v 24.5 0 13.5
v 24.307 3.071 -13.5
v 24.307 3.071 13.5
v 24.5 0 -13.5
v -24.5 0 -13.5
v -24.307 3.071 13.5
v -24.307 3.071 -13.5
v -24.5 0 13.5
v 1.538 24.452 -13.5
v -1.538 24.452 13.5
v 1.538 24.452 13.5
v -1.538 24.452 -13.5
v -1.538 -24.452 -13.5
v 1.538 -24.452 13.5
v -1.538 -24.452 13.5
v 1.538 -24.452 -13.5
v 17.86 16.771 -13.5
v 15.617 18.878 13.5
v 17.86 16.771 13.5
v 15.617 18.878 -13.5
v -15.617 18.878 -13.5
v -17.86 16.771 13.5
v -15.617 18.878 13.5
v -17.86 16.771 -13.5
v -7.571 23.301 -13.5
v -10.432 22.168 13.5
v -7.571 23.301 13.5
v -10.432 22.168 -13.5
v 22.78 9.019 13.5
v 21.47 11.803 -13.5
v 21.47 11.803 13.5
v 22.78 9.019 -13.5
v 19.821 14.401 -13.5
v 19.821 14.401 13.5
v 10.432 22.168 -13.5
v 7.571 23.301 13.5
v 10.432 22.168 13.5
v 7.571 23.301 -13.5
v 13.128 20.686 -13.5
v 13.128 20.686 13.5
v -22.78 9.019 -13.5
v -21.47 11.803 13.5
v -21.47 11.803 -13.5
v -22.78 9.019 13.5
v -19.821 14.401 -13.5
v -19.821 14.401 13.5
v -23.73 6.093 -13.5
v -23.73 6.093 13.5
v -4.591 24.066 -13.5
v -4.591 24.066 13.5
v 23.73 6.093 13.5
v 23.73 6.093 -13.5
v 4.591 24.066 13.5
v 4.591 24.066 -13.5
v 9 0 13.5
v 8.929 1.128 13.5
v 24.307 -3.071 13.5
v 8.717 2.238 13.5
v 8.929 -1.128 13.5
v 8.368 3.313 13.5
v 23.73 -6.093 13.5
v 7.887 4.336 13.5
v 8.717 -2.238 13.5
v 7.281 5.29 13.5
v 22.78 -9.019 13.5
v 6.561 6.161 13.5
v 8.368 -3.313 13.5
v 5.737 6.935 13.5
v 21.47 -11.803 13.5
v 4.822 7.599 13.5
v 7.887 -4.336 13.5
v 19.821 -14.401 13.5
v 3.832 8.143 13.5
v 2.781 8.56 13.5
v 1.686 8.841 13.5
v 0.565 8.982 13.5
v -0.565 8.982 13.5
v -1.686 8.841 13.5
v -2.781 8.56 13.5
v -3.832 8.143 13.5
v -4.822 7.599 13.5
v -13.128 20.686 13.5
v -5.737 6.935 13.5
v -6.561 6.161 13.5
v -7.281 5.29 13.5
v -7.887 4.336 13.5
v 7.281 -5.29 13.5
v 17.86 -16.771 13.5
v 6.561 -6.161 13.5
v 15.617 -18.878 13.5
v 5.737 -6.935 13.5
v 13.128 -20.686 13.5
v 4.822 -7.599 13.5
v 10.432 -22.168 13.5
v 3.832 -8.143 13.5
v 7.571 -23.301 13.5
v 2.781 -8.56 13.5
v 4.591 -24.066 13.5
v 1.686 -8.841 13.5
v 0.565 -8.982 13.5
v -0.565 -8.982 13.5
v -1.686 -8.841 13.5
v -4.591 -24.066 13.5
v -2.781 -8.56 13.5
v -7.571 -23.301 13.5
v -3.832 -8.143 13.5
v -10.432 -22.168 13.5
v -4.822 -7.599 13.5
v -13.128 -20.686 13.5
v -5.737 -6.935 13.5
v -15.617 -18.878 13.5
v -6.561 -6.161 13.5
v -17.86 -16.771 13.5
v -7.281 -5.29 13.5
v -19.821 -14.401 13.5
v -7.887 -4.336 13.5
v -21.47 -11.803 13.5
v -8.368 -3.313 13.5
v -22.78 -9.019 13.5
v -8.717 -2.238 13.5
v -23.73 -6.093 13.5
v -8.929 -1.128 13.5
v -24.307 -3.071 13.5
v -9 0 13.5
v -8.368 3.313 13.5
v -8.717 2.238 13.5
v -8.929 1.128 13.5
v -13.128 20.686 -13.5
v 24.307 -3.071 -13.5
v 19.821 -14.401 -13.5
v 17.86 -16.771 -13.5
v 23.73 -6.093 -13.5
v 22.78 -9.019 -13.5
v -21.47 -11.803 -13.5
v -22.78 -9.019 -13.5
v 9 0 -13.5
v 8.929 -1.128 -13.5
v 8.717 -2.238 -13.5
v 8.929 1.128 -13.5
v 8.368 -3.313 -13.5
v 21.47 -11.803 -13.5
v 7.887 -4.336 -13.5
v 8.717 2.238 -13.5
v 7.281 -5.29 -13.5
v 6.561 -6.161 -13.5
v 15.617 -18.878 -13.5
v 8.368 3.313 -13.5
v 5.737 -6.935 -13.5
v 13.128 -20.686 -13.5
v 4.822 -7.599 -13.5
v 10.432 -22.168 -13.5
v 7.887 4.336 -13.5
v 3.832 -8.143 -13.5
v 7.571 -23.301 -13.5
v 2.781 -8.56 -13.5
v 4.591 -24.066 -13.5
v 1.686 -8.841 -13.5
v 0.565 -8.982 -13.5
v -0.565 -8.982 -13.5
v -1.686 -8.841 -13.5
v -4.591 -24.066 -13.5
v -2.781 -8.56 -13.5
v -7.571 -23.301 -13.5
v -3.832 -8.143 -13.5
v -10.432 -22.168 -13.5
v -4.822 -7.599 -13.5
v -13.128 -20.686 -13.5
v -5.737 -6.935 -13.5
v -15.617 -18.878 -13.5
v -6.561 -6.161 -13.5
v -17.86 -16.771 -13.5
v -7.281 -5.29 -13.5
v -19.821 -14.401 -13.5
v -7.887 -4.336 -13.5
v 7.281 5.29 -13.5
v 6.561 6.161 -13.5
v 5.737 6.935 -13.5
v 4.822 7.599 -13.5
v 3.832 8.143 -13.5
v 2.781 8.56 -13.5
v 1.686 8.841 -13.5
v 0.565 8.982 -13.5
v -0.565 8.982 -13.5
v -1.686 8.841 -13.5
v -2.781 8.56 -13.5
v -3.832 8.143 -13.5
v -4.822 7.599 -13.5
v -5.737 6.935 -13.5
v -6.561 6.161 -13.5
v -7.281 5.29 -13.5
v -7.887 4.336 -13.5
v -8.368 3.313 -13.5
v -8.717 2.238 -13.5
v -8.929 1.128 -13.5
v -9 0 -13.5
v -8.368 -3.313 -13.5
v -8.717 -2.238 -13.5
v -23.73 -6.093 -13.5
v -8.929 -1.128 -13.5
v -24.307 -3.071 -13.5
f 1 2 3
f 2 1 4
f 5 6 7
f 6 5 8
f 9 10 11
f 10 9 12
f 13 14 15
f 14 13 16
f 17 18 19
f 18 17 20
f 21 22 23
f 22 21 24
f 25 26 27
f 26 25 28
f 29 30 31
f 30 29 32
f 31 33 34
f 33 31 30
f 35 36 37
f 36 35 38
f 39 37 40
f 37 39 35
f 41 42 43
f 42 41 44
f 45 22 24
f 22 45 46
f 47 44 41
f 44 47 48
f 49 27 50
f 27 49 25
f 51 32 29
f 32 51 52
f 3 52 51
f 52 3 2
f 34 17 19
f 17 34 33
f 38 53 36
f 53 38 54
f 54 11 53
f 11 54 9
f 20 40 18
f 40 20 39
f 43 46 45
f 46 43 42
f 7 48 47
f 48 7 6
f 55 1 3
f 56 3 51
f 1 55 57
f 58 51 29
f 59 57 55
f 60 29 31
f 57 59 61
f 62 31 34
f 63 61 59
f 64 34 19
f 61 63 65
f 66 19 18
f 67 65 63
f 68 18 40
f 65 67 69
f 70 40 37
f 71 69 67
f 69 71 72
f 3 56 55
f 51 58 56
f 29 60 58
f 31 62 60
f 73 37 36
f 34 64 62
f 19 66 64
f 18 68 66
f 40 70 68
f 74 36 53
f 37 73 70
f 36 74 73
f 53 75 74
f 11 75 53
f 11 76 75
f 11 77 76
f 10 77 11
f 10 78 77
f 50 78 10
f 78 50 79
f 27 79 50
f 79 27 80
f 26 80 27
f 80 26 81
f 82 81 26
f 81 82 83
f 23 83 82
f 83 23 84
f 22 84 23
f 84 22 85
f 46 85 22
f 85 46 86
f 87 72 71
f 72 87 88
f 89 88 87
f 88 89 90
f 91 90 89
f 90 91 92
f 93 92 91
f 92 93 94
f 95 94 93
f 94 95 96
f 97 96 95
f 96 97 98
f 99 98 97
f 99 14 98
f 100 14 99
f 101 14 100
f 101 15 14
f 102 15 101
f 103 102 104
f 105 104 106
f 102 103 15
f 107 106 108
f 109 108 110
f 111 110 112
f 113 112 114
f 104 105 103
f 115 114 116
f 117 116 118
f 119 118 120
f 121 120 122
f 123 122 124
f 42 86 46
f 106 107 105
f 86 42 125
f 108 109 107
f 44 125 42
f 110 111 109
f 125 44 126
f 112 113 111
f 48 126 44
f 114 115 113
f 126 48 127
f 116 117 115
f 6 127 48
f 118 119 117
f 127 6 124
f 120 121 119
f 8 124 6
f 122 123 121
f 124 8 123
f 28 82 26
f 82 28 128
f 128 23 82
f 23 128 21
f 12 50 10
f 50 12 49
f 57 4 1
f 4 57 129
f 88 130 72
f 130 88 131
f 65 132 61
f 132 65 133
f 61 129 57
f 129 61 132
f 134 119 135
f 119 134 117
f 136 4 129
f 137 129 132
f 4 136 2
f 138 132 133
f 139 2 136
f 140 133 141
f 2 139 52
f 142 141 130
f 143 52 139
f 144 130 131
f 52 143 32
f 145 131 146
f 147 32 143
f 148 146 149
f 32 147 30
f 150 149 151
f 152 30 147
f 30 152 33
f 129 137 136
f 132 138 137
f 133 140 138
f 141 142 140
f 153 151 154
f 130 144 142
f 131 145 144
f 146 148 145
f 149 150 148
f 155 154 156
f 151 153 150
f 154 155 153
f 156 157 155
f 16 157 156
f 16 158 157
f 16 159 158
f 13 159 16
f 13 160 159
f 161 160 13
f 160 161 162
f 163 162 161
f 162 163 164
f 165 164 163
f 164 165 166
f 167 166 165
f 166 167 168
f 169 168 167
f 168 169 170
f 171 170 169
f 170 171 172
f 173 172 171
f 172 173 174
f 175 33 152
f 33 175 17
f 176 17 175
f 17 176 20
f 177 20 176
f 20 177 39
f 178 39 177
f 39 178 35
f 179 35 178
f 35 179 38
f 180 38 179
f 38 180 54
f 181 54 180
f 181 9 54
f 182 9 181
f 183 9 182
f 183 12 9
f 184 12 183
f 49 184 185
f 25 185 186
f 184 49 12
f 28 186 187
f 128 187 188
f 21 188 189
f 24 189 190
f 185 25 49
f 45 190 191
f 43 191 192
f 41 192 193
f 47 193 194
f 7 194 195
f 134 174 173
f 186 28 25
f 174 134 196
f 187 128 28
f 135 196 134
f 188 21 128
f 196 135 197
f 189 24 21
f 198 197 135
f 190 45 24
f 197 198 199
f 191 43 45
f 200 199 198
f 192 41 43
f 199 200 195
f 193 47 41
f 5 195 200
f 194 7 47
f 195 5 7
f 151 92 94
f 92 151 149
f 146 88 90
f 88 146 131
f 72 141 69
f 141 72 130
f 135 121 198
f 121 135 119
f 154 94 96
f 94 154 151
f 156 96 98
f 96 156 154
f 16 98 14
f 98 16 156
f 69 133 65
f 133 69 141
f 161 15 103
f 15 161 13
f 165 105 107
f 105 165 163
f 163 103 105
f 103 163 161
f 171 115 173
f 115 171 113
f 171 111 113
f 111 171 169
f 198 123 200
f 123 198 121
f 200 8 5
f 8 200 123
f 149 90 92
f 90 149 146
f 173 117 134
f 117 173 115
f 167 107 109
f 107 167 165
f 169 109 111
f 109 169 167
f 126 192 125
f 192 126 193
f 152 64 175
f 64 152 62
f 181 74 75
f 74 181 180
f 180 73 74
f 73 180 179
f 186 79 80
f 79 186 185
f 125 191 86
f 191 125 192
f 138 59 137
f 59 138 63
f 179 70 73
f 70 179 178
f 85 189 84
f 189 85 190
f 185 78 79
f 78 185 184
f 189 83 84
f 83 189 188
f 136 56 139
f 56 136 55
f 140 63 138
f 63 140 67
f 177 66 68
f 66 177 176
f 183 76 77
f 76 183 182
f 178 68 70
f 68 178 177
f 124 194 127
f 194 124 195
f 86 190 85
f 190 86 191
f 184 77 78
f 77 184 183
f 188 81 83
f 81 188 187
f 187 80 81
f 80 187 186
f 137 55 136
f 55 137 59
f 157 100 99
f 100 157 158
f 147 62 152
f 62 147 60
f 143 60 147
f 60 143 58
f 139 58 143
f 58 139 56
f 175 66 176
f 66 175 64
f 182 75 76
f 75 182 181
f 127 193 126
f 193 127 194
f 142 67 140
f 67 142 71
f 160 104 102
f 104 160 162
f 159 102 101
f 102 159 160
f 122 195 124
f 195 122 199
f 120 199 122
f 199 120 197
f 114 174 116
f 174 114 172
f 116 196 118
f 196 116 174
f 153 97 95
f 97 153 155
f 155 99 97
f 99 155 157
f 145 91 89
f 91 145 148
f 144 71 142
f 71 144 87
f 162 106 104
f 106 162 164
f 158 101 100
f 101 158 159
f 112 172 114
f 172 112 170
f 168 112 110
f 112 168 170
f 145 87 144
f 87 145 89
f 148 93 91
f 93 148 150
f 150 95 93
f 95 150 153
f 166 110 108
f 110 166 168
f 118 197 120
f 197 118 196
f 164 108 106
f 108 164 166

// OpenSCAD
$fn = 50;


difference() {
	union() {
		translate(v = [0, 0, -13.5000000000]) {
			cylinder(h = 27, r = 24.5000000000);
		}
	}
	union() {
		translate(v = [0, 0, -100.0000000000]) {
			cylinder(h = 200, r = 9);
		}
	}
}
